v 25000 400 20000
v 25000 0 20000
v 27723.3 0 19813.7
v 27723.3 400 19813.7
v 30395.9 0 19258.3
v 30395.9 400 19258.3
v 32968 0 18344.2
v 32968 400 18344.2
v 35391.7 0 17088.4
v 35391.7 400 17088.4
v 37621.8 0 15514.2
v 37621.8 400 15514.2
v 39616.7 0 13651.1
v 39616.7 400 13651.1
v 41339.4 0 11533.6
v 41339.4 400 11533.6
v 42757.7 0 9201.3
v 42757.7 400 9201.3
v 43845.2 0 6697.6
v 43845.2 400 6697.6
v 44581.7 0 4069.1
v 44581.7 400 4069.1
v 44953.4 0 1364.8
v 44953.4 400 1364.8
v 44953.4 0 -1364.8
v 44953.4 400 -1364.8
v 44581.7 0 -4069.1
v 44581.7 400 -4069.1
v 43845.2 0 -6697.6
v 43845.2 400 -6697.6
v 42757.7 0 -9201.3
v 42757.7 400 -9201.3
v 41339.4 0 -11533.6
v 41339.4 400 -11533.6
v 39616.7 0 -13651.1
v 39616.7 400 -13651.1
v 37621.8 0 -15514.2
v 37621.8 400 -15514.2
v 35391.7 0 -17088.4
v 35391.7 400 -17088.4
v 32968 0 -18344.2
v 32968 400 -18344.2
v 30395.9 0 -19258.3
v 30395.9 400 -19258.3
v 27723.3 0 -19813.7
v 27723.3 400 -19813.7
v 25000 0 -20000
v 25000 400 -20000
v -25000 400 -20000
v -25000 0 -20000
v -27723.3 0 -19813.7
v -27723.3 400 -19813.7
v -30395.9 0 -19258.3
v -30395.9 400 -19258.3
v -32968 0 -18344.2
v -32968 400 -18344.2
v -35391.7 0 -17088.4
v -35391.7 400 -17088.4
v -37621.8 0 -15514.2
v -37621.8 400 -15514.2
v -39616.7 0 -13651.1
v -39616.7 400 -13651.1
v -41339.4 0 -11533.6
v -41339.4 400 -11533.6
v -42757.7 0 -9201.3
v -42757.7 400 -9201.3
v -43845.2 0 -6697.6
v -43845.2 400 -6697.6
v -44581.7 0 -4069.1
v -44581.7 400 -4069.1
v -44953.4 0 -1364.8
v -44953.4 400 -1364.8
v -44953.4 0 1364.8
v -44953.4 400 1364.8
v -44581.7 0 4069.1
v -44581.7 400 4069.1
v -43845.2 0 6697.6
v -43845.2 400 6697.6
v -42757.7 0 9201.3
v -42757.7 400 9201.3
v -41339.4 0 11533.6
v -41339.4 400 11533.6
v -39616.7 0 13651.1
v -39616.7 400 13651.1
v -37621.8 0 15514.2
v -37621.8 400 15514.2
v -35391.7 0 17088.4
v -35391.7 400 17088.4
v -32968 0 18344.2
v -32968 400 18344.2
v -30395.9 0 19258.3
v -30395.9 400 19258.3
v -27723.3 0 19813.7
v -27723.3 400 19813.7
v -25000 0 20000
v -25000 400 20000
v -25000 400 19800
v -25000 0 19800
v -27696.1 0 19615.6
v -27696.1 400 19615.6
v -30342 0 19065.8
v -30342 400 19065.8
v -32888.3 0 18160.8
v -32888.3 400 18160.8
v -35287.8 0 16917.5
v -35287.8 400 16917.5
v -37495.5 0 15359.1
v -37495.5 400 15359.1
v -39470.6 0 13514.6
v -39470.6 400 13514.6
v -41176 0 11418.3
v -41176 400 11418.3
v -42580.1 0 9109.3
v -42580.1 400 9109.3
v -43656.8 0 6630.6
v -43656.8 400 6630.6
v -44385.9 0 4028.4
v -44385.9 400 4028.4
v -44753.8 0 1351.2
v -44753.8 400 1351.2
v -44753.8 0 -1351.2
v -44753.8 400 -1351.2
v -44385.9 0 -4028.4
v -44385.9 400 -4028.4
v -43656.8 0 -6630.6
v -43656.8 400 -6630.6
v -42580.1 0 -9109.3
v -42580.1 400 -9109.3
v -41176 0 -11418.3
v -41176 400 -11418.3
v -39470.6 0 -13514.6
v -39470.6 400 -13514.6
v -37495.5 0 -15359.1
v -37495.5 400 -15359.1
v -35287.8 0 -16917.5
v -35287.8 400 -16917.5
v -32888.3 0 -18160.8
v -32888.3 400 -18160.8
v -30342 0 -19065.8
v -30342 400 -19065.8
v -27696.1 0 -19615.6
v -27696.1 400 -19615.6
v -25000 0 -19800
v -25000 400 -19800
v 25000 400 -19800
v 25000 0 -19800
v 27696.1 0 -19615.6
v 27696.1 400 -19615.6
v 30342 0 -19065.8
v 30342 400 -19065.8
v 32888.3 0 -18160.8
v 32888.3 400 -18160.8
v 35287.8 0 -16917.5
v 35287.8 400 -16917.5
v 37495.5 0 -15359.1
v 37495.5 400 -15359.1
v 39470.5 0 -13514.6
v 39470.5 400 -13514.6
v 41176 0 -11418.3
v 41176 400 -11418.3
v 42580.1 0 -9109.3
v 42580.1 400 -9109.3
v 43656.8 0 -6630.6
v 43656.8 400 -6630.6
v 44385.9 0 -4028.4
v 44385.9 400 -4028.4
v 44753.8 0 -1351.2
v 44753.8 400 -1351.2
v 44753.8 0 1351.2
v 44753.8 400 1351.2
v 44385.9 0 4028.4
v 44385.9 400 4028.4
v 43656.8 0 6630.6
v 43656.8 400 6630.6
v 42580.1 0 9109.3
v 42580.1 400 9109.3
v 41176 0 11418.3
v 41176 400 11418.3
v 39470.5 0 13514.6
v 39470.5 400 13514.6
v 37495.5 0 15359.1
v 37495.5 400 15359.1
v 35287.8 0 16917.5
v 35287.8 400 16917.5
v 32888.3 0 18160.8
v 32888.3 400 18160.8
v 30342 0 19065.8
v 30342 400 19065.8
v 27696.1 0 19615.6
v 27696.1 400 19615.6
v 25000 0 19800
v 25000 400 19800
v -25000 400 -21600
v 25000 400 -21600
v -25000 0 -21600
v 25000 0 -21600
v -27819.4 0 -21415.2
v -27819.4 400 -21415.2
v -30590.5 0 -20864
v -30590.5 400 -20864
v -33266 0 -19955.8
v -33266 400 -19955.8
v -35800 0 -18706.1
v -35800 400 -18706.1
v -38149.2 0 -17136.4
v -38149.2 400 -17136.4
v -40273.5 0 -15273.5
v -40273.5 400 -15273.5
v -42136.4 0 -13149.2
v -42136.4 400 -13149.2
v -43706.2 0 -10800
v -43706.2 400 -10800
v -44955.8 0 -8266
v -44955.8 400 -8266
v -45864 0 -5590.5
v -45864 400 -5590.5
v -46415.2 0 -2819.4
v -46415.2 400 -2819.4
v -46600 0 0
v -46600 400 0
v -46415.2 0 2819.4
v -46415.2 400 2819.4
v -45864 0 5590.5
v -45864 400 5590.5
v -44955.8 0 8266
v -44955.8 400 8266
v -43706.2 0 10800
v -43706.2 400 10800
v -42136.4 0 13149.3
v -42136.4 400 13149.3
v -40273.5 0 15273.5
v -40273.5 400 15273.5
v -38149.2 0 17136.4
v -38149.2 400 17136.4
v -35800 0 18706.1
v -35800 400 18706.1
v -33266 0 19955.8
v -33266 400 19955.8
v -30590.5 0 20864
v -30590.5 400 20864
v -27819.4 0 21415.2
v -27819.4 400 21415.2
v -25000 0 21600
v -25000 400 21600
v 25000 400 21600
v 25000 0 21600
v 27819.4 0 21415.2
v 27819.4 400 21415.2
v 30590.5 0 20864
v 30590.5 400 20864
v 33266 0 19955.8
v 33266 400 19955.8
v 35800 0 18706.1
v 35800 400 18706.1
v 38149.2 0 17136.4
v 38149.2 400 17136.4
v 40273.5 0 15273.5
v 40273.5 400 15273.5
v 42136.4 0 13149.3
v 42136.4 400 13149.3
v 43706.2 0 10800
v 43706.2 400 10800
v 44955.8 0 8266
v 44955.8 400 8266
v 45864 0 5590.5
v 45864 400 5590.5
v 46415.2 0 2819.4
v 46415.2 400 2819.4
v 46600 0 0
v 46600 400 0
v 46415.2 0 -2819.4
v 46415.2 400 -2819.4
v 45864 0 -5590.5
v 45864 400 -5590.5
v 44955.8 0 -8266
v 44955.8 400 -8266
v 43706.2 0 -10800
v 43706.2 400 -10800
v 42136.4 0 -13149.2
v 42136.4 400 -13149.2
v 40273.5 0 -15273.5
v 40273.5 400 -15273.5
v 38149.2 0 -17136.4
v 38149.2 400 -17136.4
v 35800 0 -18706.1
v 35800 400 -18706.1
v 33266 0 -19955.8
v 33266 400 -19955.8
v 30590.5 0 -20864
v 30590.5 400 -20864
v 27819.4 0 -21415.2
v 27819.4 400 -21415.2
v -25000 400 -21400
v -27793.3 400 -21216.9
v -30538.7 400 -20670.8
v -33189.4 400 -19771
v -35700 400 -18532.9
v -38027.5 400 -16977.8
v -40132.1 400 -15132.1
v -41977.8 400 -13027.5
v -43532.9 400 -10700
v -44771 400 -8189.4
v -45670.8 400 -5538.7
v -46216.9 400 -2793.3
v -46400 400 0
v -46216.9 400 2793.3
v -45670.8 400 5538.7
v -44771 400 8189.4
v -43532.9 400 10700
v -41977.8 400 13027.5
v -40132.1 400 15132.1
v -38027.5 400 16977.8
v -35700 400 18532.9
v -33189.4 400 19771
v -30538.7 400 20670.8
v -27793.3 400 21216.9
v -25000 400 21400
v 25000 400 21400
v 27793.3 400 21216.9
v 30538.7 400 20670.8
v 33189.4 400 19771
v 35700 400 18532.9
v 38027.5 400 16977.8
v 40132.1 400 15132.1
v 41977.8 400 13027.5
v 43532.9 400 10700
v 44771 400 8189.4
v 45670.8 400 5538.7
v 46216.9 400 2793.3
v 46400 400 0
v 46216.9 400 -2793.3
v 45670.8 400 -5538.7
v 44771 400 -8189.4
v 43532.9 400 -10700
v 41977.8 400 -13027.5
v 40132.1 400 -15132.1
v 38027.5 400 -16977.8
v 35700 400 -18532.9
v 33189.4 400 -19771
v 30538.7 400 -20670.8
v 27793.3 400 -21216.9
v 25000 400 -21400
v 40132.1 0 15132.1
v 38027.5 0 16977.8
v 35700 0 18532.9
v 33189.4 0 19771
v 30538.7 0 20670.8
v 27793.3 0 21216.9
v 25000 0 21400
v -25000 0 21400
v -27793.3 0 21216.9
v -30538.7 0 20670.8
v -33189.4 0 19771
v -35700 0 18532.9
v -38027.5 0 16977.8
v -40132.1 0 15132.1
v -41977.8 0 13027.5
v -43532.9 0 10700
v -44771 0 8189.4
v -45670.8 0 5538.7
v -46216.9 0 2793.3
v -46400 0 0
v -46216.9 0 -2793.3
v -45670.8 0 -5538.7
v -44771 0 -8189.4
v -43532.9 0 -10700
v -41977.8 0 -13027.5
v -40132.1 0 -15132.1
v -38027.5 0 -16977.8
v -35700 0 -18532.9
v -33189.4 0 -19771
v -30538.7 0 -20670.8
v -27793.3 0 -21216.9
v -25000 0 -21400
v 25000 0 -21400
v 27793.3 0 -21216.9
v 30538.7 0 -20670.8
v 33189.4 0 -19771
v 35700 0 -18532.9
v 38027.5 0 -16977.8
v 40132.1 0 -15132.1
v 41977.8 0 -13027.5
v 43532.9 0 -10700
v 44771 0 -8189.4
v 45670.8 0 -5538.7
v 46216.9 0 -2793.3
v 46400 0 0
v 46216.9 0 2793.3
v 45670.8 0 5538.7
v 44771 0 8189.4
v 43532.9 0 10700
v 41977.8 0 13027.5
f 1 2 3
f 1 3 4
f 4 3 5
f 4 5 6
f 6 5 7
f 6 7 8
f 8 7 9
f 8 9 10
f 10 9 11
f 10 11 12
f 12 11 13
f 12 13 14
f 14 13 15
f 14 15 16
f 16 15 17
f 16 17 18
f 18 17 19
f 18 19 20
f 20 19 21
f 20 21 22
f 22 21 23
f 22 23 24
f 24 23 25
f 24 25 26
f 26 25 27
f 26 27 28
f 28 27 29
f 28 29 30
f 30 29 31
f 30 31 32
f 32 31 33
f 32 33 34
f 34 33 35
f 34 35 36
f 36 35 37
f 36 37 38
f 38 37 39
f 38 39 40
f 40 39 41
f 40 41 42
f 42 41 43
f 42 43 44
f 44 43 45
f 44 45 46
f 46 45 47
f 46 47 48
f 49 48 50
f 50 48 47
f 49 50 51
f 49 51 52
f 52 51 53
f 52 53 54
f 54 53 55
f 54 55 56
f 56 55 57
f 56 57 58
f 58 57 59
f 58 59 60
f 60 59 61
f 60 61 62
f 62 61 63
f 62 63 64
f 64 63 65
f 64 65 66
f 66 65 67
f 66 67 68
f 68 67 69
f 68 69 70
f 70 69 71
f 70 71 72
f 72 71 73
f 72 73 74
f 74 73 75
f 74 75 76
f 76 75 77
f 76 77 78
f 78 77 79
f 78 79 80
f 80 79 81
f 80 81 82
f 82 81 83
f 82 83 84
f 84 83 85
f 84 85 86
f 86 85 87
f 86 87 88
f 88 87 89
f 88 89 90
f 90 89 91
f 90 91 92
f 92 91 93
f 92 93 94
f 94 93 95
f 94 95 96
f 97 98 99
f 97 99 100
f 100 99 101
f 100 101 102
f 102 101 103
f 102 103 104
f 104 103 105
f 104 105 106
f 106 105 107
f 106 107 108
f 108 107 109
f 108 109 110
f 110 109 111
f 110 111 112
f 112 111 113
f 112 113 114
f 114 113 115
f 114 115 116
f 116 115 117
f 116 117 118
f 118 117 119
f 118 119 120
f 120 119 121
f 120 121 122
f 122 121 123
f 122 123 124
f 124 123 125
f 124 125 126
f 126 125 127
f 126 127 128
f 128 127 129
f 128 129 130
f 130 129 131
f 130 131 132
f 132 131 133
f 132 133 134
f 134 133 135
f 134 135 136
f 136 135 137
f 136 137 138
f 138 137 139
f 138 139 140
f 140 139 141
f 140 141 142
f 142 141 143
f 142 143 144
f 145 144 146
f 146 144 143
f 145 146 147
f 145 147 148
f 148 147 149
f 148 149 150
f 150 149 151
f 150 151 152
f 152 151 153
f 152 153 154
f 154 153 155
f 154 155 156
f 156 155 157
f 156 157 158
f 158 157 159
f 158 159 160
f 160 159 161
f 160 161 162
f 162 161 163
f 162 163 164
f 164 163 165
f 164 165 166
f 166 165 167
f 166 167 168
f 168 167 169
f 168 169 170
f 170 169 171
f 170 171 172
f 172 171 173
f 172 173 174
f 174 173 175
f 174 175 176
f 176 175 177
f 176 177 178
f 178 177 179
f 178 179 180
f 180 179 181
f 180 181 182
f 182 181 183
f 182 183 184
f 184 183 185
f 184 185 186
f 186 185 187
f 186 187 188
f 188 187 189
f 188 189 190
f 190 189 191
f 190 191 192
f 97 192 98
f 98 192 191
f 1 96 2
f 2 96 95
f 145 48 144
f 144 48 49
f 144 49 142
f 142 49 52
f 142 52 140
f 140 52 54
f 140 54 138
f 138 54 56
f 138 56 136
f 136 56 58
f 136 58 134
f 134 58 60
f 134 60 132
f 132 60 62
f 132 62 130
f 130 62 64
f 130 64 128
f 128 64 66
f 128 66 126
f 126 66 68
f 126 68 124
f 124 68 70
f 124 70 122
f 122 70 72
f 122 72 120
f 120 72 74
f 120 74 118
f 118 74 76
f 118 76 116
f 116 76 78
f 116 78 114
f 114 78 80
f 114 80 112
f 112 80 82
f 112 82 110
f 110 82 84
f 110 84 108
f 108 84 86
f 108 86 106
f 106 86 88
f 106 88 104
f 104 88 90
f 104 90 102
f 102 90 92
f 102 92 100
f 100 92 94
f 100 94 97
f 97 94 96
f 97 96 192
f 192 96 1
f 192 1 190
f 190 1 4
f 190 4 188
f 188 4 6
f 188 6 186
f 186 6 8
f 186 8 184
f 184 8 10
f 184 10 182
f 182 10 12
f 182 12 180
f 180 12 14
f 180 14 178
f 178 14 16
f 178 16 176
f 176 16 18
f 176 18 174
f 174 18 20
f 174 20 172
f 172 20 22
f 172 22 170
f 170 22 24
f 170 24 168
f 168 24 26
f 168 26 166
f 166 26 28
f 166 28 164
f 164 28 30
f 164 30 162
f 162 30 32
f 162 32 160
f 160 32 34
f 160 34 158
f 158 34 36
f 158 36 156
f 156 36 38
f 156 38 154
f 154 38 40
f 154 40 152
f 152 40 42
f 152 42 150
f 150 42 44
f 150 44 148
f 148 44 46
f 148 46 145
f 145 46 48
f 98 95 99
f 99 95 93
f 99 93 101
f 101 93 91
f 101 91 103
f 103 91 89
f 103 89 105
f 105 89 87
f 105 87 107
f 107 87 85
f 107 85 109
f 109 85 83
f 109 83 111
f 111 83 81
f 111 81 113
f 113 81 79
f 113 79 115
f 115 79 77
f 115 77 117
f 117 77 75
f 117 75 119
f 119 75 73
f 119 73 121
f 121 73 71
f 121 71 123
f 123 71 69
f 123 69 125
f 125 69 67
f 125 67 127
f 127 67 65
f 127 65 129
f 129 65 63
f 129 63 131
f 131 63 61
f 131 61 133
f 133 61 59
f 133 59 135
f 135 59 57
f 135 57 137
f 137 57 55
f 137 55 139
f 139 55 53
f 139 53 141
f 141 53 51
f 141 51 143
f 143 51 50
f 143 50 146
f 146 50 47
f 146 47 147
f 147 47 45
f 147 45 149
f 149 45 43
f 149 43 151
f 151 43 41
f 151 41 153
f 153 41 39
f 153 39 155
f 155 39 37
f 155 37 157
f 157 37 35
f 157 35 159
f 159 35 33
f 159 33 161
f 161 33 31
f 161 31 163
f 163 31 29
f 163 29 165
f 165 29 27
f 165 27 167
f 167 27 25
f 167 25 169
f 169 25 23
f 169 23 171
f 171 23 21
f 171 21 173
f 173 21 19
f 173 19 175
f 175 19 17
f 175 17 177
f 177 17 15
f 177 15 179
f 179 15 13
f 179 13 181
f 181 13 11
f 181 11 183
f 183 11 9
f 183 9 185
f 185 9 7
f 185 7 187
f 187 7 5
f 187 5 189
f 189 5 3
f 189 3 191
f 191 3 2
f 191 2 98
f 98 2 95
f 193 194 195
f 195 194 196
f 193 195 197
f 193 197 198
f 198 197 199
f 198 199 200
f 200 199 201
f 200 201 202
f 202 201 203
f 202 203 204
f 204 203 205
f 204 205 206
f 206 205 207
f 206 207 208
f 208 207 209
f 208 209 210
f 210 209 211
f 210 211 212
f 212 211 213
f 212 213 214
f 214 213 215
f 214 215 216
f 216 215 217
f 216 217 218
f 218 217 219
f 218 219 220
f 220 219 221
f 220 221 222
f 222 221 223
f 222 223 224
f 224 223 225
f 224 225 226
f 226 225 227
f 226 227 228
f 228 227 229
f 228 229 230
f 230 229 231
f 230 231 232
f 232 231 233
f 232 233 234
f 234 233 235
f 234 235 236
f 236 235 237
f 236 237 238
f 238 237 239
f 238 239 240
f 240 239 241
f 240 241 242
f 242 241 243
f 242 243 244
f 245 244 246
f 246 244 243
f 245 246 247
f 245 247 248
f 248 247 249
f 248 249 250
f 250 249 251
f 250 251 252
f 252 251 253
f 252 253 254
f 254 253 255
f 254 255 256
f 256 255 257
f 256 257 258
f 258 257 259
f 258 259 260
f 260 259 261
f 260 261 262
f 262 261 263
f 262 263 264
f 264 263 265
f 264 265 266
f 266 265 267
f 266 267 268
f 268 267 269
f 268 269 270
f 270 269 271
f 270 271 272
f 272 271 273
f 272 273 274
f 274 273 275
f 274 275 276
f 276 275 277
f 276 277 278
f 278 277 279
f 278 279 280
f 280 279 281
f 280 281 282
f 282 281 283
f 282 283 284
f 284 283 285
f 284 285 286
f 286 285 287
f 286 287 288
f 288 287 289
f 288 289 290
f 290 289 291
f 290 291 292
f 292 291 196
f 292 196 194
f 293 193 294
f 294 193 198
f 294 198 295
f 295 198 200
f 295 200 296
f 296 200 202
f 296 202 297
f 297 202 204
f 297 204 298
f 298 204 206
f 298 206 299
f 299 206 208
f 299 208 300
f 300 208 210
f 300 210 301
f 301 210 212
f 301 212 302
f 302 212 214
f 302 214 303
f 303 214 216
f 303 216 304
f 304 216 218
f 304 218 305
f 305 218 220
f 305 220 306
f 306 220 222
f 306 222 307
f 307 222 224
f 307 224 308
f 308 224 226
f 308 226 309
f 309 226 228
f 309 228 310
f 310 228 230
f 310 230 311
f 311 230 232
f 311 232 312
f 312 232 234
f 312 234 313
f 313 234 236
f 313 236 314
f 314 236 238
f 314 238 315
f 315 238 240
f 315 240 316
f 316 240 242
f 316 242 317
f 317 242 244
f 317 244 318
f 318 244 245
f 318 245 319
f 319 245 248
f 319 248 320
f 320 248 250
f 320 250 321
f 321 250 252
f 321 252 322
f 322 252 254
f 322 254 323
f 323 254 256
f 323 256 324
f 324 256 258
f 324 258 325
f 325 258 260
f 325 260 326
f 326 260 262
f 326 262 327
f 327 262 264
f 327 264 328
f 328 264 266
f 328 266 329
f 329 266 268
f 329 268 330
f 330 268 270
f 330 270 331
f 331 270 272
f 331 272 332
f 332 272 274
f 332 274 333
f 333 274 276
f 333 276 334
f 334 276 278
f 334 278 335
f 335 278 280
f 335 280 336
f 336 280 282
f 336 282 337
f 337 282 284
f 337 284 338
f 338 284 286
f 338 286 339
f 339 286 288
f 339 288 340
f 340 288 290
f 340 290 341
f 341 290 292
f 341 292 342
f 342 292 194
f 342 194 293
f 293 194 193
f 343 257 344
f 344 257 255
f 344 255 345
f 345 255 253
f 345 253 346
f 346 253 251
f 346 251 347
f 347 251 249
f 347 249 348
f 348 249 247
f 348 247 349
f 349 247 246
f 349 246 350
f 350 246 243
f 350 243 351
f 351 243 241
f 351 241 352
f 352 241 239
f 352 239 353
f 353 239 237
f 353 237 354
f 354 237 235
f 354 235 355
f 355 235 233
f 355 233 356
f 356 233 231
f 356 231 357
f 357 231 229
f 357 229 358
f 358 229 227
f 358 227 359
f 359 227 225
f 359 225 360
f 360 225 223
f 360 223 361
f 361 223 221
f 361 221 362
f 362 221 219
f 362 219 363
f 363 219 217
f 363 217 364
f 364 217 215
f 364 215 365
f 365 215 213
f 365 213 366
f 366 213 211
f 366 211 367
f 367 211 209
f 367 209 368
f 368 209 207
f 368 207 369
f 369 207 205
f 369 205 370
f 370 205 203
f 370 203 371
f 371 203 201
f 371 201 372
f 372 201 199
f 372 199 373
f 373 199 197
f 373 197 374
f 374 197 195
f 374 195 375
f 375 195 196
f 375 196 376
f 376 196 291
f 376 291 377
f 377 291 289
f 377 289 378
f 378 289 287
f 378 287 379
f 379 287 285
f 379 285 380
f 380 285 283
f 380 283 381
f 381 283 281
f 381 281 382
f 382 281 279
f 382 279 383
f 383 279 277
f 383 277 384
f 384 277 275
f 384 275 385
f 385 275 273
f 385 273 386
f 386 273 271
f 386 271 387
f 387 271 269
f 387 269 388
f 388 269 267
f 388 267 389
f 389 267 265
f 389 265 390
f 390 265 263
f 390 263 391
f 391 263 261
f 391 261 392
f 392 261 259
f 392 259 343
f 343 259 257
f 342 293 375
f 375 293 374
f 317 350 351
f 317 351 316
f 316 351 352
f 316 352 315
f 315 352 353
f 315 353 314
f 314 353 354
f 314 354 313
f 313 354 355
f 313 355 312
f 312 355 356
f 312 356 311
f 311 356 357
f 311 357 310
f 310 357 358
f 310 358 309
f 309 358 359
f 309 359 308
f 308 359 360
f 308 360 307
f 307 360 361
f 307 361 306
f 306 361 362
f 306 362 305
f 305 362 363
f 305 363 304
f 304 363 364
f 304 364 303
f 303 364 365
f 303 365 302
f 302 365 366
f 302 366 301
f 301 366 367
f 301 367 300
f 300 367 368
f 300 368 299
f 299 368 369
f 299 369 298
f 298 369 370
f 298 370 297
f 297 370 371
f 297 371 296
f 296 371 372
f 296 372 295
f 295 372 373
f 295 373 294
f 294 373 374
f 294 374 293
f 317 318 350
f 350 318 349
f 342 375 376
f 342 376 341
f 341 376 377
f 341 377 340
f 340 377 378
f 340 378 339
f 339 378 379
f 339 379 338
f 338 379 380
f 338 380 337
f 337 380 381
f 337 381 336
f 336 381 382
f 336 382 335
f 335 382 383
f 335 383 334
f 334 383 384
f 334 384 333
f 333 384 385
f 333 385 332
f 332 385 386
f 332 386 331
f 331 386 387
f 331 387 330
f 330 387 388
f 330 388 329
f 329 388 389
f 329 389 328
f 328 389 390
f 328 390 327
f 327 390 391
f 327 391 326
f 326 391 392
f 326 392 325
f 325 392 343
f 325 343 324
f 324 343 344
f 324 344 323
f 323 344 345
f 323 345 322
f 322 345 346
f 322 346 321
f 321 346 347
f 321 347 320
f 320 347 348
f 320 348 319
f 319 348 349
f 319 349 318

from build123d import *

# Parameters (mm, degrees)
BOSS_EXTRUDE1_DEPTH = 400
BOSS_EXTRUDE2_DEPTH = 400


with BuildPart() as part:
    # Sketch1 → Boss-Extrude1 (new body)
    with BuildSketch(Plane(origin=(0, 0, 0), x_dir=(1, 0, 0), z_dir=(0, 1, 0))):
        with BuildLine():
            ThreePointArc((-25000, 20000), (-45000, 0), (-25000, -20000))
            Line((-25000, -20000), (25000, -20000))
            ThreePointArc((25000, -20000), (45000, 0), (25000, 20000))
            Line((25000, 20000), (-25000, 20000))
        make_face()
        with BuildLine():
            Line((25000, -19800), (-25000, -19800))
            ThreePointArc((-25000, -19800), (-44800, 0), (-25000, 19800))
            Line((-25000, 19800), (25000, 19800))
            ThreePointArc((25000, 19800), (44800, 0), (25000, -19800))
        make_face(mode=Mode.SUBTRACT)
    extrude(amount=BOSS_EXTRUDE1_DEPTH)


with BuildPart() as body_2:
    # Sketch1<6> → Boss-Extrude2 (new body)
    with BuildSketch(Plane(origin=(0, 0, 0), x_dir=(1, 0, 0), z_dir=(0, 1, 0))):
        with BuildLine():
            Line((-25000, -21600), (25000, -21600))
            ThreePointArc((25000, -21600), (46600, 0), (25000, 21600))
            Line((25000, 21600), (-25000, 21600))
            ThreePointArc((-25000, 21600), (-46600, 0), (-25000, -21600))
        make_face()
        with BuildLine():
            Line((-25000, -21400), (25000, -21400))
            ThreePointArc((25000, -21400), (46400, 0), (25000, 21400))
            Line((25000, 21400), (-25000, 21400))
            ThreePointArc((-25000, 21400), (-46400, 0), (-25000, -21400))
        make_face(mode=Mode.SUBTRACT)
    extrude(amount=BOSS_EXTRUDE2_DEPTH)


solid = Compound([part.part, body_2.part])
